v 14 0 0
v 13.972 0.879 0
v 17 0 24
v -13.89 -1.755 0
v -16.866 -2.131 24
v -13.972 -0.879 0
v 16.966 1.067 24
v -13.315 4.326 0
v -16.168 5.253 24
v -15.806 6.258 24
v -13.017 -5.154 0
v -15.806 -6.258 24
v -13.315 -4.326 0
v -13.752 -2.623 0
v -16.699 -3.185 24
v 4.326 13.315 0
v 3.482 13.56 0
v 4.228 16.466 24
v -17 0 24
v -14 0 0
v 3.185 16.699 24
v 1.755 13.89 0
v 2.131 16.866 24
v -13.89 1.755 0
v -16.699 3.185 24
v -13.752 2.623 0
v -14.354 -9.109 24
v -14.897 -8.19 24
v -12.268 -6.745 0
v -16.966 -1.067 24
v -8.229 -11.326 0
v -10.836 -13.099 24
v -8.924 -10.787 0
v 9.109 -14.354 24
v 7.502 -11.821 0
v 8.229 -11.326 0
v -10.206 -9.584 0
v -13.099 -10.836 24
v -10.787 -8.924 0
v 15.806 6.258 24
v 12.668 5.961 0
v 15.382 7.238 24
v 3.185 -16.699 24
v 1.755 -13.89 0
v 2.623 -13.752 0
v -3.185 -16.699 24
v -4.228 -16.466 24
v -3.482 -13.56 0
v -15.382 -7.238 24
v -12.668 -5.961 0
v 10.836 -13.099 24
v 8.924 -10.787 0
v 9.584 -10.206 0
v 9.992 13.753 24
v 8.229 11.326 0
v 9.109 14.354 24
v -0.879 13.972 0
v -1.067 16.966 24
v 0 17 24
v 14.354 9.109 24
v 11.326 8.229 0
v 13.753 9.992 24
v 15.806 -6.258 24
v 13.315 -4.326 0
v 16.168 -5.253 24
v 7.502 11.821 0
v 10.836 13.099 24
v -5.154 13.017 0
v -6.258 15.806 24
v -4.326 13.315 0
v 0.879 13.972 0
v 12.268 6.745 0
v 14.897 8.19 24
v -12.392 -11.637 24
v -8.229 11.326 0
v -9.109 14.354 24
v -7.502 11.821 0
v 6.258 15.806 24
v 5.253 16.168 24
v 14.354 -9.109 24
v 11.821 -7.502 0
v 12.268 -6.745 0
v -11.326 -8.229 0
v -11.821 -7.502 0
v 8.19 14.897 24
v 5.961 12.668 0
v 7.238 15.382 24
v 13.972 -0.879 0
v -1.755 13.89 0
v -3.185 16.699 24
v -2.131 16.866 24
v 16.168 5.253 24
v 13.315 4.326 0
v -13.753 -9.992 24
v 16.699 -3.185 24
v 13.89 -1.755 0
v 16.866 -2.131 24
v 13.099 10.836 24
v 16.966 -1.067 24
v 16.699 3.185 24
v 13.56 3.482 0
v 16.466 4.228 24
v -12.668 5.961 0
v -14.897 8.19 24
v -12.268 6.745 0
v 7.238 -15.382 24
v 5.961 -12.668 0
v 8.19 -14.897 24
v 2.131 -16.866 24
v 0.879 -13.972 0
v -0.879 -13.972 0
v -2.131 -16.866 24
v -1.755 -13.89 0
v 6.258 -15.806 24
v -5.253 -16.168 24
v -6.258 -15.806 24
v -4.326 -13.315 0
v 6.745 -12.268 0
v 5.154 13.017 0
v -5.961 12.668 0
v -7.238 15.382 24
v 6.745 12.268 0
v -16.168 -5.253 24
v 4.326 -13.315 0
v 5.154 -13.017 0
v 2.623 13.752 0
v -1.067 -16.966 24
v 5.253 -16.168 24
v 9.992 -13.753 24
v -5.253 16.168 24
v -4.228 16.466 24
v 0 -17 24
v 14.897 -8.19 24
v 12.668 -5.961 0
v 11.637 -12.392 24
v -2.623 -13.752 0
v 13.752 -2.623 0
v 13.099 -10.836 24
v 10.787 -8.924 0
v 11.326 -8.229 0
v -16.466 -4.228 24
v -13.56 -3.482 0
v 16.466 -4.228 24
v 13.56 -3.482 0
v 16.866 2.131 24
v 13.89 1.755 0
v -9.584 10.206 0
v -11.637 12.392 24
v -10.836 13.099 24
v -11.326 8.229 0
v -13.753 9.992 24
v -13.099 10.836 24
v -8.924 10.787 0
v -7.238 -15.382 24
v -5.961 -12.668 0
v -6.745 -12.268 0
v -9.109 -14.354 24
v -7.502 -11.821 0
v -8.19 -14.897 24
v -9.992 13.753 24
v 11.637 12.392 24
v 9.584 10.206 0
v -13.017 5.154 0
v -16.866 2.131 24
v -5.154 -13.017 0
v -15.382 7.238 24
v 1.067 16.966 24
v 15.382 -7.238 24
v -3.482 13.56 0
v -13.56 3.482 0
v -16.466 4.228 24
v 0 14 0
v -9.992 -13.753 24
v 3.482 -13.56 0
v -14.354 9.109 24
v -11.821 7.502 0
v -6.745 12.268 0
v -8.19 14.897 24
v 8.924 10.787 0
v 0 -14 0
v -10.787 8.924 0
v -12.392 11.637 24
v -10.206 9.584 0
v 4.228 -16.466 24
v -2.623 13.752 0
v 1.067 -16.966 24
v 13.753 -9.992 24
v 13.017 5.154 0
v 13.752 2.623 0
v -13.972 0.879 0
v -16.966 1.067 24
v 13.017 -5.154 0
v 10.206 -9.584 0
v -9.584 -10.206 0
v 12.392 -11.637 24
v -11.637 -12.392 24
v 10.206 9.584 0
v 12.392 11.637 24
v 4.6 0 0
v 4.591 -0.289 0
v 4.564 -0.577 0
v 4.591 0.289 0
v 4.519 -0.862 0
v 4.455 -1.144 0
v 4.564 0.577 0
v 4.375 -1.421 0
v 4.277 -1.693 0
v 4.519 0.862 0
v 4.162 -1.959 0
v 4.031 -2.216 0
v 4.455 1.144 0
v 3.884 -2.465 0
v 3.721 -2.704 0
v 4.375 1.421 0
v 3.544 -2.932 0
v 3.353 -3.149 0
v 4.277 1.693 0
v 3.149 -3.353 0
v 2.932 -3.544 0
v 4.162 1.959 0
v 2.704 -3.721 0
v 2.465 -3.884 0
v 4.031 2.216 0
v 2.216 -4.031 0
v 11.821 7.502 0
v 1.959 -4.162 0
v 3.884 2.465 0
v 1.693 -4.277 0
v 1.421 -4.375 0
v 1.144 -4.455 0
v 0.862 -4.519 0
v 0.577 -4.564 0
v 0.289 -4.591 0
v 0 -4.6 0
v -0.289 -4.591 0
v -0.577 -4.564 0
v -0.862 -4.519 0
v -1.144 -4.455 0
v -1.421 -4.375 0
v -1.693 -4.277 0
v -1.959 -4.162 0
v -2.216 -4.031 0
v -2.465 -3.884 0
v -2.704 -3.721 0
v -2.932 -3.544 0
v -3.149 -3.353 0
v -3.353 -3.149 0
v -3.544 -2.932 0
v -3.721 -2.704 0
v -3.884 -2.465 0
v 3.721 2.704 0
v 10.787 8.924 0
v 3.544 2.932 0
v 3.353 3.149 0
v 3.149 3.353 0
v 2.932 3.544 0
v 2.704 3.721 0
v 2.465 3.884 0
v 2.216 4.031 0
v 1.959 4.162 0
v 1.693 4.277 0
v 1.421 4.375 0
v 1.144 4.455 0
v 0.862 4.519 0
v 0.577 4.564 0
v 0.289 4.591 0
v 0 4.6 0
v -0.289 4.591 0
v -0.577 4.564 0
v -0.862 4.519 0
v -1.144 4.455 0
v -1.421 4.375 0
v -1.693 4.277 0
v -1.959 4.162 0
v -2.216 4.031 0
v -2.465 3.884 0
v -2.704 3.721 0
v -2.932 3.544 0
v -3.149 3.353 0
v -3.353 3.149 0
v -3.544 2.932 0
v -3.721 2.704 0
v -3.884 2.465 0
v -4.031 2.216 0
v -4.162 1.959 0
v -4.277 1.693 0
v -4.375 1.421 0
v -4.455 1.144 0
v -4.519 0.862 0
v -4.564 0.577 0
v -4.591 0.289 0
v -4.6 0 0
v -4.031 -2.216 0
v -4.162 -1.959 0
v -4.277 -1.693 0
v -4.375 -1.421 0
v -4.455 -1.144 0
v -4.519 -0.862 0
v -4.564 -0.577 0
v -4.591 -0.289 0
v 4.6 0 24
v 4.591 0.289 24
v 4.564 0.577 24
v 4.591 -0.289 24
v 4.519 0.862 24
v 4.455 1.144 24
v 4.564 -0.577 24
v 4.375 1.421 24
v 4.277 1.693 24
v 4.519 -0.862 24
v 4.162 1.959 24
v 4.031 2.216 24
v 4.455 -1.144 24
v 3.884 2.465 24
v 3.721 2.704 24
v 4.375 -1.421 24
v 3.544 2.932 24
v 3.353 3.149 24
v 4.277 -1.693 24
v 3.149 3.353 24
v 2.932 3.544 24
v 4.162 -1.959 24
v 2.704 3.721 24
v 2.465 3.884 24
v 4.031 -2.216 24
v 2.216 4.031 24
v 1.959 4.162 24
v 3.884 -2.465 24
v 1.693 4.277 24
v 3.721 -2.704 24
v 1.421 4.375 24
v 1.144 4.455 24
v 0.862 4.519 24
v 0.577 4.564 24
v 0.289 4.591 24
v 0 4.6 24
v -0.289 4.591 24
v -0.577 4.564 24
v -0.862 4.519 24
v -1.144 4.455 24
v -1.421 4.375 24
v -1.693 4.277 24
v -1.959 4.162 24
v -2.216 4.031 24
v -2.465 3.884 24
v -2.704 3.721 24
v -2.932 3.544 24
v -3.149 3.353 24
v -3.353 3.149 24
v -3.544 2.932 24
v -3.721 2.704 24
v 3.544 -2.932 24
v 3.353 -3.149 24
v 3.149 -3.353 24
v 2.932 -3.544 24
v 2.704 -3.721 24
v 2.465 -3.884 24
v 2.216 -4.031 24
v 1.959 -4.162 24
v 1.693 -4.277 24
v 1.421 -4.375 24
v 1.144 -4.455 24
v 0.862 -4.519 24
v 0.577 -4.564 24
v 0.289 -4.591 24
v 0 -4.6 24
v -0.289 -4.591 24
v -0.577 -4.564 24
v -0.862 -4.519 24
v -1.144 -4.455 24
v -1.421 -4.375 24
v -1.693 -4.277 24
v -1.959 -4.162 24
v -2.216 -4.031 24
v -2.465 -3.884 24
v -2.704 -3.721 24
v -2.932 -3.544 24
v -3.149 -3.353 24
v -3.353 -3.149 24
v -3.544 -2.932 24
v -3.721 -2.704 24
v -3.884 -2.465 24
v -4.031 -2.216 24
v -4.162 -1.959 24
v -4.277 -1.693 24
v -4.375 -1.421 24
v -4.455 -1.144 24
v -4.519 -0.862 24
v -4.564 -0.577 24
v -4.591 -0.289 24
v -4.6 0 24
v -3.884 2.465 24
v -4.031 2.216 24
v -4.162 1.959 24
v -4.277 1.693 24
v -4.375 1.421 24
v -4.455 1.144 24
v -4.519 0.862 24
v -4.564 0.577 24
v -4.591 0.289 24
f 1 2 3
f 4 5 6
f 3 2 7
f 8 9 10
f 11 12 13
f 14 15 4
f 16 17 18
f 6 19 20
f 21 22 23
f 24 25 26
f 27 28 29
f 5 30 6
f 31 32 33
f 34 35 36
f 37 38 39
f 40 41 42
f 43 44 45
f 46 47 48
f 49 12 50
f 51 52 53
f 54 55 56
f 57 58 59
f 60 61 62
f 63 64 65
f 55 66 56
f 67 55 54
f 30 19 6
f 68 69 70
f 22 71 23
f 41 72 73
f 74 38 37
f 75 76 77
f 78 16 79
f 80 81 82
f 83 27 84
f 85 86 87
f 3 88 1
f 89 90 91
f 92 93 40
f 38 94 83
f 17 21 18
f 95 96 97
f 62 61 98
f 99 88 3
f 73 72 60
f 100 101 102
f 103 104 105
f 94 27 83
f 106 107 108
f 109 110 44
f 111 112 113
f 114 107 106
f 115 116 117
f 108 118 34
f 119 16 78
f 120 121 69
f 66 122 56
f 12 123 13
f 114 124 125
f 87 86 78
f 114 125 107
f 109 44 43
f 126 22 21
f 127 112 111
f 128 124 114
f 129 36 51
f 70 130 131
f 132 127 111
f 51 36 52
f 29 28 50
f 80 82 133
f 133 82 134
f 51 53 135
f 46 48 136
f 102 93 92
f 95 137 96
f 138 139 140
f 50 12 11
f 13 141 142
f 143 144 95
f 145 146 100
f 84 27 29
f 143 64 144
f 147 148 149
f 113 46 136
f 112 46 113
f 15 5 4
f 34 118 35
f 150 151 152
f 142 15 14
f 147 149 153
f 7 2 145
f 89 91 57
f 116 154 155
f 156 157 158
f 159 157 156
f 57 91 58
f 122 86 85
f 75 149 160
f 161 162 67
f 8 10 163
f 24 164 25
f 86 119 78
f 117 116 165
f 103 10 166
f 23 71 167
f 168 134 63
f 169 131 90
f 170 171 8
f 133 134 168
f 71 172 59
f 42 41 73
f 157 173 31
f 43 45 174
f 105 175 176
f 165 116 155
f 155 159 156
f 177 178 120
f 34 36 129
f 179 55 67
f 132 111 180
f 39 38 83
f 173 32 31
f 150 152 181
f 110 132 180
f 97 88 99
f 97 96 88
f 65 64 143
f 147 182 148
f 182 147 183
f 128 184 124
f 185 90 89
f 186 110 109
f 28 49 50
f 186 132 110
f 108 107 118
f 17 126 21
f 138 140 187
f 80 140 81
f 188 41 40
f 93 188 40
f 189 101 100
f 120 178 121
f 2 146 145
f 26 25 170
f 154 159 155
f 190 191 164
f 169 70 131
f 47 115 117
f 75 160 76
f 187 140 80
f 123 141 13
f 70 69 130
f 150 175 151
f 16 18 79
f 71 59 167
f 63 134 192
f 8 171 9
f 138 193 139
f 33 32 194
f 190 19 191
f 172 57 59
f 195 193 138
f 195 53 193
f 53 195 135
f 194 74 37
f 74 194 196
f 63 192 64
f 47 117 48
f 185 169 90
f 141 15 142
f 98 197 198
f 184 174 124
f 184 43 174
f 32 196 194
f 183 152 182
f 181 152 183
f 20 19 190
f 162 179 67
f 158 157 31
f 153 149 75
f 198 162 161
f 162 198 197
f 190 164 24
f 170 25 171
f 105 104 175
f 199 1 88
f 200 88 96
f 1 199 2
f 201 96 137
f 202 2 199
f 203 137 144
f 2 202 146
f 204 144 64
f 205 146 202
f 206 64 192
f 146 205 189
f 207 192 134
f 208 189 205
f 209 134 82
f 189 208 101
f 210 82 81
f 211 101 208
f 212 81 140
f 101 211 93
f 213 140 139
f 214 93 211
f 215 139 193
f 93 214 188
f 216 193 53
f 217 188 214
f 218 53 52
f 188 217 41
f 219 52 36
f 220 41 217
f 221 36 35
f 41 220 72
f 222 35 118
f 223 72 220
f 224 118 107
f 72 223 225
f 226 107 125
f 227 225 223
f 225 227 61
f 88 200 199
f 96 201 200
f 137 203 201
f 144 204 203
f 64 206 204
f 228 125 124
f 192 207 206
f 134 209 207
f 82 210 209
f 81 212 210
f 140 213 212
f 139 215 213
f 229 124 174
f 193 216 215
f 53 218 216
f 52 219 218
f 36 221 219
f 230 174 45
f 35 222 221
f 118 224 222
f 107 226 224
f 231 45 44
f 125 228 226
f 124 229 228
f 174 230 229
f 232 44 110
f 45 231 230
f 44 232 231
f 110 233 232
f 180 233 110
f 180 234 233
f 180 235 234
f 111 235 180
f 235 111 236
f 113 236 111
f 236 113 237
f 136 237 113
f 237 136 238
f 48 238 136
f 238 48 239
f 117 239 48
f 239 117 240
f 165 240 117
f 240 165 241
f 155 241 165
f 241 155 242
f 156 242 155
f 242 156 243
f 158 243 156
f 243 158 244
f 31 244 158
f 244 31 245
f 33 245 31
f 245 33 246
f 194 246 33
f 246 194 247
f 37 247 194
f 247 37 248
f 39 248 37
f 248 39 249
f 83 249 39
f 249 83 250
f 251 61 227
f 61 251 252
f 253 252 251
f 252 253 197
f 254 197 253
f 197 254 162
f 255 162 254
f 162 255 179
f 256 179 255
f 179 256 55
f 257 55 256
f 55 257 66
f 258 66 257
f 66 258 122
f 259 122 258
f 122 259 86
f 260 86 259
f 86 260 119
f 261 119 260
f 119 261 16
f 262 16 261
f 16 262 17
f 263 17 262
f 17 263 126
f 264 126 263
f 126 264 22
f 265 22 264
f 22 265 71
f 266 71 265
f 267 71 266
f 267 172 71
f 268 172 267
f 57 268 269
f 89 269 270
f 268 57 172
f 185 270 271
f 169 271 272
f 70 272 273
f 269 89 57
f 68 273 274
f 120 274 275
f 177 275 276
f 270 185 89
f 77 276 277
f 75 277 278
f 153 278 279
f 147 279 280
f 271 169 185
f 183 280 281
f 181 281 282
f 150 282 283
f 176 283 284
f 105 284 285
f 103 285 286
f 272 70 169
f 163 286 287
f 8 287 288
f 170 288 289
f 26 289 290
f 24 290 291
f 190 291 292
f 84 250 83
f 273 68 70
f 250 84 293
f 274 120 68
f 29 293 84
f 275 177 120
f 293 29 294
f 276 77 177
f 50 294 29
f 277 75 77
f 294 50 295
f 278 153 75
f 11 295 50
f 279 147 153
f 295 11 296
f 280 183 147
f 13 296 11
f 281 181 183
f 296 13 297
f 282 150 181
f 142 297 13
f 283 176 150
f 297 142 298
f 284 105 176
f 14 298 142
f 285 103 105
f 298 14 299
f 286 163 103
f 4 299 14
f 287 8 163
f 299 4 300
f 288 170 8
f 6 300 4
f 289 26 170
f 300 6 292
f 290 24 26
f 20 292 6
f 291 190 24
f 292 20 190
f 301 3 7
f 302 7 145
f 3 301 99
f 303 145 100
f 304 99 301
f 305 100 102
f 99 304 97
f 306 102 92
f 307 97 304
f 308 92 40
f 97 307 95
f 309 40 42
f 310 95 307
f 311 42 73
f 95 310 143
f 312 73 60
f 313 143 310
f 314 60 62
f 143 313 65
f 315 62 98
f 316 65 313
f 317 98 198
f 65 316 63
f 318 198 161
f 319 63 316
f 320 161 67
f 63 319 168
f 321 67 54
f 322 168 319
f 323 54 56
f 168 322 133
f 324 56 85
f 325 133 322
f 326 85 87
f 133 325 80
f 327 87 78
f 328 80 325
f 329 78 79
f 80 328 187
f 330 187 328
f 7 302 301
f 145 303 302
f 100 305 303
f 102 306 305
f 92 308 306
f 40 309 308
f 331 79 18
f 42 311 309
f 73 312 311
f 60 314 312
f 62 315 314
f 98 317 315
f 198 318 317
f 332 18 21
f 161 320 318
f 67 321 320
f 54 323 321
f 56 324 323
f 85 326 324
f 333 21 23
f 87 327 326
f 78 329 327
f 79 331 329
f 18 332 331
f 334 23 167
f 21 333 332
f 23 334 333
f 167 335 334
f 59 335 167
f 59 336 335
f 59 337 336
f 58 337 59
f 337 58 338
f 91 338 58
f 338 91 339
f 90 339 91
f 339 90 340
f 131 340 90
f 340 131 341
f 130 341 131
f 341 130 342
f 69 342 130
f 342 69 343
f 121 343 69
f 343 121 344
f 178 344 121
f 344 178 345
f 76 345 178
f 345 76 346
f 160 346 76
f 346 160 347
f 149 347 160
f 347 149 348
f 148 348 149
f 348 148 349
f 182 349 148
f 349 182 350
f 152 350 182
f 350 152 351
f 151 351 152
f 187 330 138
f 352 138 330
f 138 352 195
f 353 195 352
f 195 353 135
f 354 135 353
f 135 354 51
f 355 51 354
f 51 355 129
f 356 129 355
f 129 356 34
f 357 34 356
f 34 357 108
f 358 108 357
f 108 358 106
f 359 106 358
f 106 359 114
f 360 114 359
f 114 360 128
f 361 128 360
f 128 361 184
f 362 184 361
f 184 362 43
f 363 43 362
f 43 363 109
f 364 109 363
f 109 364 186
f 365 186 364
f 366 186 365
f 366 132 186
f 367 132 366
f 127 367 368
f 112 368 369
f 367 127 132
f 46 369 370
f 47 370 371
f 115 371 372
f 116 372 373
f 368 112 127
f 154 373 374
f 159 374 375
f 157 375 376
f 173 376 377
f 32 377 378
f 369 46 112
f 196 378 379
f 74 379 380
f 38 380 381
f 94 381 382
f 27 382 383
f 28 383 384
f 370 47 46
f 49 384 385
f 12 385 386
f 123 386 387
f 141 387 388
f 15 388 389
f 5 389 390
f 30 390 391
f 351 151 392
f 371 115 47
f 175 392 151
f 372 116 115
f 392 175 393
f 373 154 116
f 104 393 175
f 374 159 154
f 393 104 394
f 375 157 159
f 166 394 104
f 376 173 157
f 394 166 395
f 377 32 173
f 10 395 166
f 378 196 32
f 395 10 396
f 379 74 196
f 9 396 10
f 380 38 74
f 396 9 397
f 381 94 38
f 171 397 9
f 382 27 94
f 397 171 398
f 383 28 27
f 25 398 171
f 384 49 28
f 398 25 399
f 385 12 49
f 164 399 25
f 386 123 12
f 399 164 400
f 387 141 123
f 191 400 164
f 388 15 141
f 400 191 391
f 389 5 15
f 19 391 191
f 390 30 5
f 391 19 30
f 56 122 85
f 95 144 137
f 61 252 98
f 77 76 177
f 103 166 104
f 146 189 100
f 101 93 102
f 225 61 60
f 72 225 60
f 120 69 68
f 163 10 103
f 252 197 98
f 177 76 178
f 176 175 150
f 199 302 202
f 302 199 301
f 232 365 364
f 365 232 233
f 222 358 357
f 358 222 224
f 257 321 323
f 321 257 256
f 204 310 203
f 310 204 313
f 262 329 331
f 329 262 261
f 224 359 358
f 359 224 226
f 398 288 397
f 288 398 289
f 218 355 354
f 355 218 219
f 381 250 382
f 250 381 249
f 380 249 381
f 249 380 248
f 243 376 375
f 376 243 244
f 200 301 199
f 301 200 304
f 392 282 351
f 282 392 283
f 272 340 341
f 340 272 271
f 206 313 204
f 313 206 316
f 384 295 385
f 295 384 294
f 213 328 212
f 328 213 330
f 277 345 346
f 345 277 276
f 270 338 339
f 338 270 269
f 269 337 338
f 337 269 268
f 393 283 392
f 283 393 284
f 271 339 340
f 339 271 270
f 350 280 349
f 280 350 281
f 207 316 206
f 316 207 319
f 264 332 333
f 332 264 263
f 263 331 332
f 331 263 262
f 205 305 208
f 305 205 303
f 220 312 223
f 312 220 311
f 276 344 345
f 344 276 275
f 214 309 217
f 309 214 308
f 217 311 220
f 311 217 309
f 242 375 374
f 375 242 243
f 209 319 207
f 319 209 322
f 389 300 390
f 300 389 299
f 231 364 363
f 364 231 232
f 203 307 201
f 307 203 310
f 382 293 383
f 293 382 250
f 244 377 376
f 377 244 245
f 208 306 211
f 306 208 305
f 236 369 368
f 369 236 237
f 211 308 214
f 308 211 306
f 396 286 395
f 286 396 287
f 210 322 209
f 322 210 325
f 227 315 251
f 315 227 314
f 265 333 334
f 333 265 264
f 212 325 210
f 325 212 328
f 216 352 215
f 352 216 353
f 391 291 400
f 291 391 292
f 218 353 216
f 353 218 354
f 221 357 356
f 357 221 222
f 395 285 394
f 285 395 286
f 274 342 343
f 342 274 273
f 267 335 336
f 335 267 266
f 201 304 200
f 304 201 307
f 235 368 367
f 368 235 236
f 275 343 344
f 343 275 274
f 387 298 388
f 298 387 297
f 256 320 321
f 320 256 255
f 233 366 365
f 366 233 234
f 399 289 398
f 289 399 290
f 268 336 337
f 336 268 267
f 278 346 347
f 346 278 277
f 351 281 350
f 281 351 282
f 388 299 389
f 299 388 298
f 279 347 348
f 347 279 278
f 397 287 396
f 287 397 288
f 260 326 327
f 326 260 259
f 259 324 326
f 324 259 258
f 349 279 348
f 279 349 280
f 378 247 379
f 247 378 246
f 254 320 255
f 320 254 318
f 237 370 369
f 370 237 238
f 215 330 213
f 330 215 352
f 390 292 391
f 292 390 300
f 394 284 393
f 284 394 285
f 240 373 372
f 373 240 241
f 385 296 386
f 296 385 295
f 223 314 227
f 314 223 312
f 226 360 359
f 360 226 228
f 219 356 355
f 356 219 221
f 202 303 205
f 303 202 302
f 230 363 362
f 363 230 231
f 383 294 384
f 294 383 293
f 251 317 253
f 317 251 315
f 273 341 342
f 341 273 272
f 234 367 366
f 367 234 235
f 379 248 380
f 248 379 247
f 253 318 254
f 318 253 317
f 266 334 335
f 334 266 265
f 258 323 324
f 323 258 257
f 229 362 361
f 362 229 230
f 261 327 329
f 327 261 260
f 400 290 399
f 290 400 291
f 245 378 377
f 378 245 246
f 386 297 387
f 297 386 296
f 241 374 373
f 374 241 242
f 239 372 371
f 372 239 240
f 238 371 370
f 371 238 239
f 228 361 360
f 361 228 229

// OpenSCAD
// Parameters
x = 14;      // bottom radius
y = 3;       // taper increment (top radius = x + y)
z = 24;      // height
b = 4.6;       // bore radius

$fn = 100;   // smoothness

difference() {
    // Outer cork body
    cylinder(h = z, r1 = x, r2 = x + y);

    // Bore (straight cylinder)
    translate([0, 0, -1])  // extend slightly below
        cylinder(h = z + 2, r = b);
}
